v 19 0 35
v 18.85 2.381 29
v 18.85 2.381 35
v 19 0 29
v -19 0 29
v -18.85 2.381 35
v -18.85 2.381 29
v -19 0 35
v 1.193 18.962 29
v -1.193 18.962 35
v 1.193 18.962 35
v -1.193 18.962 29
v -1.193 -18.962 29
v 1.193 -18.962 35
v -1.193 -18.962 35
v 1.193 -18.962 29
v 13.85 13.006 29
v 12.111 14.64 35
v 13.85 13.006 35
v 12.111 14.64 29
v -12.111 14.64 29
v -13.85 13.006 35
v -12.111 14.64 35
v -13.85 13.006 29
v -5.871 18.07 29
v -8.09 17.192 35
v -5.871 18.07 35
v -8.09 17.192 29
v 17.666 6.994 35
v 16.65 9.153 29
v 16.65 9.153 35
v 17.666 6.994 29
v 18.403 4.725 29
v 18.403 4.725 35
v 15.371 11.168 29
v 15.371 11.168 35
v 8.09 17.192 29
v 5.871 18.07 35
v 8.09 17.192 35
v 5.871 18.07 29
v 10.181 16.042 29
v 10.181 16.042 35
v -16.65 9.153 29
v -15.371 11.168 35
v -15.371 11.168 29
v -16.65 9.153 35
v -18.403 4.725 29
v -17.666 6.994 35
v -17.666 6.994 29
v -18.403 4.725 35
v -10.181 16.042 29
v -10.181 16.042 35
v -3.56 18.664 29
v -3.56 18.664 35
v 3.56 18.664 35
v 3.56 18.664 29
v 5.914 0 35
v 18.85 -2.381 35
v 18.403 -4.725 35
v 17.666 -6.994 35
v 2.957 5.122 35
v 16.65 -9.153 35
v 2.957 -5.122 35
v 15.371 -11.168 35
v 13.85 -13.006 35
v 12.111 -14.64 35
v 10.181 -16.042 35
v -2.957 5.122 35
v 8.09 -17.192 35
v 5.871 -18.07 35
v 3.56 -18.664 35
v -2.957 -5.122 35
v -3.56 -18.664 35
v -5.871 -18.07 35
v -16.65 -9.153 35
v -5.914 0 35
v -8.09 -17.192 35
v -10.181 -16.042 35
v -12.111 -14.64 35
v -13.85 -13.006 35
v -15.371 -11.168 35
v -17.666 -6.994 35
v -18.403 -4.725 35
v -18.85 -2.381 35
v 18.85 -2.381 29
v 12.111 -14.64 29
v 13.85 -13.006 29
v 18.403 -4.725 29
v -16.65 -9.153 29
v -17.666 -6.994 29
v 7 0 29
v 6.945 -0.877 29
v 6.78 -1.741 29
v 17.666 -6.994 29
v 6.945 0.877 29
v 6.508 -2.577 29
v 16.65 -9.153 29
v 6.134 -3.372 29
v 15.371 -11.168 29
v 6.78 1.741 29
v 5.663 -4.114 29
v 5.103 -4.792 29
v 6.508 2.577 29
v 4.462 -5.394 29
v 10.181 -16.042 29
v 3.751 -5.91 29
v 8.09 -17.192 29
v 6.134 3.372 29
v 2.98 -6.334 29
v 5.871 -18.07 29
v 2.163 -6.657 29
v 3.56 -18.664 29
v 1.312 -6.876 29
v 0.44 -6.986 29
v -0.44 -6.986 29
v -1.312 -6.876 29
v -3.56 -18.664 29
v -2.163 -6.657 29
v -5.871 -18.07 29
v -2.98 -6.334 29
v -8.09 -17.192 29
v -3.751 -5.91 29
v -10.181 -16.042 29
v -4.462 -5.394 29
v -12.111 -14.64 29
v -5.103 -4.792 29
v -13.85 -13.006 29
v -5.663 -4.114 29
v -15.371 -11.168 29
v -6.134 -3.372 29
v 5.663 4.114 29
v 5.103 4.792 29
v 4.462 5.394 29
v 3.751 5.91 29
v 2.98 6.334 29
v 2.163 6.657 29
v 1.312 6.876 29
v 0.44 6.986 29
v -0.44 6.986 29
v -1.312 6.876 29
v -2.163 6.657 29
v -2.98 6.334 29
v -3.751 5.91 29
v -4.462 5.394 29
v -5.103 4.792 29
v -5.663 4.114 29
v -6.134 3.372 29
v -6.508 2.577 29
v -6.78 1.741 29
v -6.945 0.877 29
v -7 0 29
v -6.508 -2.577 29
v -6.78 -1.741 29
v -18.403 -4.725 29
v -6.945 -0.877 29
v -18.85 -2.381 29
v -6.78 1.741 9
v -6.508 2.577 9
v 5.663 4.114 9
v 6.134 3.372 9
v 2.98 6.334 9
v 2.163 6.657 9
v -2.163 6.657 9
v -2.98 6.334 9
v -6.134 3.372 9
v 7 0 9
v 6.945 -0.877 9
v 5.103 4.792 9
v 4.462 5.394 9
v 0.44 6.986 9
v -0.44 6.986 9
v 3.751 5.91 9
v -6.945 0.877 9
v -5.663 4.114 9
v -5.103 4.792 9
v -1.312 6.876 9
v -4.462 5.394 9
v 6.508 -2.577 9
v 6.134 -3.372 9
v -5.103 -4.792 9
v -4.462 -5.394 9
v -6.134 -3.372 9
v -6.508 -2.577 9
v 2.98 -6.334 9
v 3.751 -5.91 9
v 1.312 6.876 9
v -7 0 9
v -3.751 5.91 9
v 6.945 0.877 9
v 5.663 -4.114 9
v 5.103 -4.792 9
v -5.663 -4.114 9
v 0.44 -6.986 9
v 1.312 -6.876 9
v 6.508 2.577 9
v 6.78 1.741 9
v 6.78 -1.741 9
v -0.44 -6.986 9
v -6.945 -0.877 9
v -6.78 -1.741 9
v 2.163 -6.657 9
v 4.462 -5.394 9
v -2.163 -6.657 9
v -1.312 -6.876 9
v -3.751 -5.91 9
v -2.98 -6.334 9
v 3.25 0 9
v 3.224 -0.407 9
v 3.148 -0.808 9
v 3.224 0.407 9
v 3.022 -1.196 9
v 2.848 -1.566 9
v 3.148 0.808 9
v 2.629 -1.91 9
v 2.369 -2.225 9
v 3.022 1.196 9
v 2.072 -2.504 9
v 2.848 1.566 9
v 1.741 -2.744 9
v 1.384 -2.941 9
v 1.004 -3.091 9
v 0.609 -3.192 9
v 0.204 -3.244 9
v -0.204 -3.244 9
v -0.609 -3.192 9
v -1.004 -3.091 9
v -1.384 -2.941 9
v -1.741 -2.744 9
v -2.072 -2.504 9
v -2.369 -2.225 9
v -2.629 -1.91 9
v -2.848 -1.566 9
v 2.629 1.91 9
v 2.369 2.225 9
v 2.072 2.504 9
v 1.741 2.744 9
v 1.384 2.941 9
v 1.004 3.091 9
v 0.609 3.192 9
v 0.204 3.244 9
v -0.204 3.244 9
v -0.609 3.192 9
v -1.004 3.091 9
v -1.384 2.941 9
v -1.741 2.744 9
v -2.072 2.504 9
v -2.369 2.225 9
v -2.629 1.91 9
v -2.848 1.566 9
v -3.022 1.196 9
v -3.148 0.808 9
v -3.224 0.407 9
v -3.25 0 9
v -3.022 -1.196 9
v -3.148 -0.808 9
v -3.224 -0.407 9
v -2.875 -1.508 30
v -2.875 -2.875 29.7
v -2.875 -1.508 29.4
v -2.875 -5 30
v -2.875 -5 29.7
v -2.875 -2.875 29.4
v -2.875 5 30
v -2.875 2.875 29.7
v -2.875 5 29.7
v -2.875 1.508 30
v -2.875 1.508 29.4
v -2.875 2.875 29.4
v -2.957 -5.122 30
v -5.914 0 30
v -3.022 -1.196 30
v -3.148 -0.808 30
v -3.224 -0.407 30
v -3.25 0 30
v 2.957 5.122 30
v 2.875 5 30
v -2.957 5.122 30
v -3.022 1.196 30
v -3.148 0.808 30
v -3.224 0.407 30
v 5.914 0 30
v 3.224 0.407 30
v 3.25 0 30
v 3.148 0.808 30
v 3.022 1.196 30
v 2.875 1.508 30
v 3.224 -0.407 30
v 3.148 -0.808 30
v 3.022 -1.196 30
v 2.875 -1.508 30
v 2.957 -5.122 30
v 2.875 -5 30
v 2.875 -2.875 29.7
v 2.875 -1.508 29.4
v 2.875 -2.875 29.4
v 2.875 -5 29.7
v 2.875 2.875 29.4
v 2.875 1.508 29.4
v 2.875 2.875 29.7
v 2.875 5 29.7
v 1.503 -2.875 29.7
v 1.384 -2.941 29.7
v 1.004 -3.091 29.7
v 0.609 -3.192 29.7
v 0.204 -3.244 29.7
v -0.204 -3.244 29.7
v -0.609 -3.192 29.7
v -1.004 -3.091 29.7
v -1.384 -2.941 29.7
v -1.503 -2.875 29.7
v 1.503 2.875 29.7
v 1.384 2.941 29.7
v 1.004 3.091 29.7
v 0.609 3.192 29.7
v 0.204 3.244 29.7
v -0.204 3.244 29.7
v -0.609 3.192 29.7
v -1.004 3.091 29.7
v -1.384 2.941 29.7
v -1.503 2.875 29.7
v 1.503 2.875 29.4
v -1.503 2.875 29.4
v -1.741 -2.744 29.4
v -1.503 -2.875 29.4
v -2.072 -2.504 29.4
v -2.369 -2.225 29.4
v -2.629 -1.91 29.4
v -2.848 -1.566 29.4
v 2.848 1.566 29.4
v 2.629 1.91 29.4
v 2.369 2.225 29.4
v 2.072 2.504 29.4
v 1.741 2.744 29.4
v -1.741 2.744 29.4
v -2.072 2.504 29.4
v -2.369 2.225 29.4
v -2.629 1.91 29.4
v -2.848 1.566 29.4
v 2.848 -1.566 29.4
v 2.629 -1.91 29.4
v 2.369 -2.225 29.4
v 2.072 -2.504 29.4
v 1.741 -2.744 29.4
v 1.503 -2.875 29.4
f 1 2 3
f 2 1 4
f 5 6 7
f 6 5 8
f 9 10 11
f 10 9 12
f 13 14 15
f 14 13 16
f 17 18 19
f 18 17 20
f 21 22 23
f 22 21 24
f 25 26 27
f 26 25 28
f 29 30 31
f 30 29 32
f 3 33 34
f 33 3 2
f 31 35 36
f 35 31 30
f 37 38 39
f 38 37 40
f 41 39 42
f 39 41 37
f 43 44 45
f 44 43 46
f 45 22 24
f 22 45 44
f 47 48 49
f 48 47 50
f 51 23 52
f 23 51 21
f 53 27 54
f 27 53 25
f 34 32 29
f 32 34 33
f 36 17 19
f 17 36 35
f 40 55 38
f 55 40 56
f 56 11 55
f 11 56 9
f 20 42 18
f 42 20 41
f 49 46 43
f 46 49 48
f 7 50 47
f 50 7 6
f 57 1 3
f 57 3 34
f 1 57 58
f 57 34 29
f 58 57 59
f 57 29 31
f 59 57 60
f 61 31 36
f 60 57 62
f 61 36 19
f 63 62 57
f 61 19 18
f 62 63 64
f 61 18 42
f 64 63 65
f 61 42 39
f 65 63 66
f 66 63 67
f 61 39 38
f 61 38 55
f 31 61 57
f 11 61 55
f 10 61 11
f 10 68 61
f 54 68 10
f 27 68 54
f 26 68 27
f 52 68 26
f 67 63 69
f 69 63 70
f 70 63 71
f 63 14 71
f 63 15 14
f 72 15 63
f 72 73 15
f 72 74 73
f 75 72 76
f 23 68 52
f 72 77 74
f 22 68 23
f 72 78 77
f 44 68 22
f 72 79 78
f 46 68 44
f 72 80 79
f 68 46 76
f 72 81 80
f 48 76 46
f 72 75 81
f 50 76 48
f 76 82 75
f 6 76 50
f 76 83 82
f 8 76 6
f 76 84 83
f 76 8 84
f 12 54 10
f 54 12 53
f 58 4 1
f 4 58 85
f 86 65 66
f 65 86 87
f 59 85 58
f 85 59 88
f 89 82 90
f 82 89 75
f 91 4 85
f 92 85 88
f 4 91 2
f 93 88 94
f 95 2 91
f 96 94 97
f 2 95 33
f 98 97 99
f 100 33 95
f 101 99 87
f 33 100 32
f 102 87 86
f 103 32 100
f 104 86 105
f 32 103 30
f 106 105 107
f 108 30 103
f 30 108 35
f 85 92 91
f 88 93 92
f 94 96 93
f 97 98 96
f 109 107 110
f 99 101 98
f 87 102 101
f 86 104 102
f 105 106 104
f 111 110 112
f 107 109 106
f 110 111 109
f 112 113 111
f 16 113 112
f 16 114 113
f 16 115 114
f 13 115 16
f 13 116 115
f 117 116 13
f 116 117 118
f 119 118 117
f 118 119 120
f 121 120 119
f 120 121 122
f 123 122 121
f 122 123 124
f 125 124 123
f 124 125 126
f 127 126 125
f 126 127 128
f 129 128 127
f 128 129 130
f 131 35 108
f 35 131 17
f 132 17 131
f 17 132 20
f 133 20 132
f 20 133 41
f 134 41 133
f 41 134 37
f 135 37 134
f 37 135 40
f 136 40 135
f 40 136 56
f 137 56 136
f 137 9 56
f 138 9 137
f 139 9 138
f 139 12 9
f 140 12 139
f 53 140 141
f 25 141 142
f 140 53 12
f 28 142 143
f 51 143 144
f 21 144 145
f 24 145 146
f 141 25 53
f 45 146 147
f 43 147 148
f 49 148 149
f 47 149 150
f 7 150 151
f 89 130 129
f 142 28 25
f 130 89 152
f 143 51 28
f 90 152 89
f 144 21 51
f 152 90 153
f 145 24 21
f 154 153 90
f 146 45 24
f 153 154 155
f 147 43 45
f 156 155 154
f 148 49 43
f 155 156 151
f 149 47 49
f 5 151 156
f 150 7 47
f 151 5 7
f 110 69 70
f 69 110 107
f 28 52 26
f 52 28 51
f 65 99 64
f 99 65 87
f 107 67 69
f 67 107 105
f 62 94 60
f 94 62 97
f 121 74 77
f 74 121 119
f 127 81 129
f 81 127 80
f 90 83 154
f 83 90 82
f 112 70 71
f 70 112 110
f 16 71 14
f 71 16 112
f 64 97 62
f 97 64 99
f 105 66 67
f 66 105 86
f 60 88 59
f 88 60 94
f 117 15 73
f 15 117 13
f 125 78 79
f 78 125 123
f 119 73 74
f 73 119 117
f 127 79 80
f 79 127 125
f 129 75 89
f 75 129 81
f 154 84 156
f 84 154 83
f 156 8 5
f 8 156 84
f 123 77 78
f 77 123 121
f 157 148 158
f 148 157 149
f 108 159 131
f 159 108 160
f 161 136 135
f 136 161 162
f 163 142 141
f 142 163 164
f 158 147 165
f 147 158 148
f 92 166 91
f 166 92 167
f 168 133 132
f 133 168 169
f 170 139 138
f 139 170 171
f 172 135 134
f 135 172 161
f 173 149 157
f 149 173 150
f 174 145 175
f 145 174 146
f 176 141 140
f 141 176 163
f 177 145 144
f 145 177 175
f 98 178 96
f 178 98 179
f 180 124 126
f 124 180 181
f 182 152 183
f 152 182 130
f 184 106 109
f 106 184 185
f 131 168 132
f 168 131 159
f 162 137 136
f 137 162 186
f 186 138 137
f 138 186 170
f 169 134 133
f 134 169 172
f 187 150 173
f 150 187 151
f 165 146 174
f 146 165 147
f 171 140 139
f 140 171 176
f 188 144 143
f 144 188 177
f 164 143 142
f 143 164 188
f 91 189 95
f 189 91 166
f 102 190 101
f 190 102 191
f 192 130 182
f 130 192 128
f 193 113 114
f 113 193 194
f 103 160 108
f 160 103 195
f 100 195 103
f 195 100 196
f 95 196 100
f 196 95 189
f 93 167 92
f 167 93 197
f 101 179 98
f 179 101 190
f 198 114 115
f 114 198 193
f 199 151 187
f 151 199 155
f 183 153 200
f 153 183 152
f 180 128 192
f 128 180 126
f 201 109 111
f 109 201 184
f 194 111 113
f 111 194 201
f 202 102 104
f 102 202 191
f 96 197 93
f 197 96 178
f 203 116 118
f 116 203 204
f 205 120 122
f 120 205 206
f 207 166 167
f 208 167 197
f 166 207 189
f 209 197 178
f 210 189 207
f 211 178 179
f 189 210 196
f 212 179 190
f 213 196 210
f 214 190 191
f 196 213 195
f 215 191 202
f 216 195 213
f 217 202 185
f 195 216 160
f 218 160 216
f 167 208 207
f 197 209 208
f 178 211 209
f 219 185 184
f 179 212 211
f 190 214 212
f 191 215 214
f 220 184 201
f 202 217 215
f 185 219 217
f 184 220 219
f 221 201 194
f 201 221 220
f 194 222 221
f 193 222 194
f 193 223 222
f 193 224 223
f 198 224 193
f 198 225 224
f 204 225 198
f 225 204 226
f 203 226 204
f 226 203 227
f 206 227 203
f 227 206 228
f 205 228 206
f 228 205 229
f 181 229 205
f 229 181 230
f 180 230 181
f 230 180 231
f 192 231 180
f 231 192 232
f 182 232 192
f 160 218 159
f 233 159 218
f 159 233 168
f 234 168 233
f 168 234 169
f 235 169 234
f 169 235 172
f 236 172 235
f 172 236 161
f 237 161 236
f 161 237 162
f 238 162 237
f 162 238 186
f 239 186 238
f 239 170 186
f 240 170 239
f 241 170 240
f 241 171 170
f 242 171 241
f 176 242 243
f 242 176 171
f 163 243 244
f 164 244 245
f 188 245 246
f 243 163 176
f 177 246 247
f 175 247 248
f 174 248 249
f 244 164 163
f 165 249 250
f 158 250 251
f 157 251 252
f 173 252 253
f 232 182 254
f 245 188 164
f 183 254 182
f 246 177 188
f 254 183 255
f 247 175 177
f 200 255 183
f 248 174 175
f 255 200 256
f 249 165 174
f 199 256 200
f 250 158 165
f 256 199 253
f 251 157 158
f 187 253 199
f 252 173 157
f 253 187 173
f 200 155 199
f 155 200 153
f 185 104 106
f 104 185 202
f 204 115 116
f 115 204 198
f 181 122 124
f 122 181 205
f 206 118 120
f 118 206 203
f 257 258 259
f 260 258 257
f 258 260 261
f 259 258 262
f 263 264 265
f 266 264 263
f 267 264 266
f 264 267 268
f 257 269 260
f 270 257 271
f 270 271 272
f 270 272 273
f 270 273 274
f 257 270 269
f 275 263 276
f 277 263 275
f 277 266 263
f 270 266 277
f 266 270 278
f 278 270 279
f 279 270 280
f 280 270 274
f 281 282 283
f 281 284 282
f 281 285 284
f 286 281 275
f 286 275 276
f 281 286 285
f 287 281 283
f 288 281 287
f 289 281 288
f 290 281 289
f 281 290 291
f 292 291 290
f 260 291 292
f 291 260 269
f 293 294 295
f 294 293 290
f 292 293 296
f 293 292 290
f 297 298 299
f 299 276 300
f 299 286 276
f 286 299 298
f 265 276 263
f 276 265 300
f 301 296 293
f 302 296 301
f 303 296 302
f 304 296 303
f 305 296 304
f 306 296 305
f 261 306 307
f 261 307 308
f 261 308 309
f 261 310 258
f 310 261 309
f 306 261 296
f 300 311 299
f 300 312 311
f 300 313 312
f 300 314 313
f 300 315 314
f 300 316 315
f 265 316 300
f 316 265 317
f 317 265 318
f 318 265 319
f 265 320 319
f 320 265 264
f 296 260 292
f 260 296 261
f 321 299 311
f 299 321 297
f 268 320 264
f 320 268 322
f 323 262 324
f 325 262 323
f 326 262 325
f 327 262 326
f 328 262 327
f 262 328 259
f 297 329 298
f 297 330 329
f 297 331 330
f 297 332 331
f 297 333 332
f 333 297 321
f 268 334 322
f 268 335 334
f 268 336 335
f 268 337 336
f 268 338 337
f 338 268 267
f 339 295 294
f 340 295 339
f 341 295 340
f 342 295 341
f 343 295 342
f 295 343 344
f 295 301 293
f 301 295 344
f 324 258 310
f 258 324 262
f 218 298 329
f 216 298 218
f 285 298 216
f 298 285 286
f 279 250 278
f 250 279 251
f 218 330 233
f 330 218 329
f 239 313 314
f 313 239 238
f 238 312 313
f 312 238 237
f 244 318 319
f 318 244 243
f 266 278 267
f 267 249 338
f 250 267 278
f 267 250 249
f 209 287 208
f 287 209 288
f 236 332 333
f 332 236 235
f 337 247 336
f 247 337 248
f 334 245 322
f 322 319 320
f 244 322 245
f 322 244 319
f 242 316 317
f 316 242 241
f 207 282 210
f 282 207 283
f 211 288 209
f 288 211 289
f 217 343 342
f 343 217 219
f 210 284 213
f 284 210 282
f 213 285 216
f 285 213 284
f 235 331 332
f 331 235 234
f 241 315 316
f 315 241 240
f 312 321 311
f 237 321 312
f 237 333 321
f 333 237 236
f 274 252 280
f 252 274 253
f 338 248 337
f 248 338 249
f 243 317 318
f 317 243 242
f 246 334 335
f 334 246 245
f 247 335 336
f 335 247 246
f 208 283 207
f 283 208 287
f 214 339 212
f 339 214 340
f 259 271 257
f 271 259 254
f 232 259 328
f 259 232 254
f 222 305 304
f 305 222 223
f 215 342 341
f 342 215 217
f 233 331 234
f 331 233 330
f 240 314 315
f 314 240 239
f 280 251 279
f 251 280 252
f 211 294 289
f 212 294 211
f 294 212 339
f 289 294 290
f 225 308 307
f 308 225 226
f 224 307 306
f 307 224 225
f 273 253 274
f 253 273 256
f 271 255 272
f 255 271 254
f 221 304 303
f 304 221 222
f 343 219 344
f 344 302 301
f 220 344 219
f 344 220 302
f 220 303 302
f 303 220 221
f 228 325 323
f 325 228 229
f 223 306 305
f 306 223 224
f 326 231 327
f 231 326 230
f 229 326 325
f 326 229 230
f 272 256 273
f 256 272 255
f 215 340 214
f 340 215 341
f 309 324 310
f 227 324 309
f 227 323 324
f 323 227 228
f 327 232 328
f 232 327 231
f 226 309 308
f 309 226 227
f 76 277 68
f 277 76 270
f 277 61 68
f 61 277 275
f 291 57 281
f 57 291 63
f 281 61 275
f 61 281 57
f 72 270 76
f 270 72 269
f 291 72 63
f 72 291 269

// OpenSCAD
$fn = 50;


difference() {
	union() {
		translate(v = [0, 0, 29.0000000000]) {
			cylinder(h = 6, r = 19.0000000000);
		}
		translate(v = [0, 0, 9.0000000000]) {
			cylinder(h = 26, r = 7.0000000000);
		}
	}
	union() {
		translate(v = [0, 0, 35]) {
			rotate(a = [0, 0, 0]) {
				difference() {
					union() {
						#translate(v = [-2.8750000000, -5.0000000000, -5.3000000000]) {
							cube(size = [5.7500000000, 10, 0.3000000000]);
						}
						#translate(v = [-2.8750000000, -2.8750000000, -5.6000000000]) {
							cube(size = [5.7500000000, 5.7500000000, 0.3000000000]);
						}
						#translate(v = [-2.8750000000, -5.0000000000, 0]) {
							cube(size = [5.7500000000, 10, 0.3000000000]);
						}
						#translate(v = [-2.8750000000, -2.8750000000, 0.3000000000]) {
							cube(size = [5.7500000000, 5.7500000000, 0.3000000000]);
						}
						#translate(v = [0, 0, -100.0000000000]) {
							cylinder(h = 200, r = 3.2500000000);
						}
						translate(v = [0, 0, -5]) {
							#linear_extrude(height = 5) {
								polygon(points = [[5.9142500000, 0.0000000000], [2.9571250000, 5.1218907443], [-2.9571250000, 5.1218907443], [-5.9142500000, 0.0000000000], [-2.9571250000, -5.1218907443], [2.9571250000, -5.1218907443]]);
							}
						}
						#translate(v = [-2.8750000000, -5.0000000000, -5.3000000000]) {
							cube(size = [5.7500000000, 10, 0.3000000000]);
						}
						#translate(v = [-2.8750000000, -2.8750000000, -5.6000000000]) {
							cube(size = [5.7500000000, 5.7500000000, 0.3000000000]);
						}
						#translate(v = [-2.8750000000, -5.0000000000, 0]) {
							cube(size = [5.7500000000, 10, 0.3000000000]);
						}
						#translate(v = [-2.8750000000, -2.8750000000, 0.3000000000]) {
							cube(size = [5.7500000000, 5.7500000000, 0.3000000000]);
						}
						#translate(v = [0, 0, -100.0000000000]) {
							cylinder(h = 200, r = 3.2500000000);
						}
						#translate(v = [-2.8750000000, -5.0000000000, -5.3000000000]) {
							cube(size = [5.7500000000, 10, 0.3000000000]);
						}
						#translate(v = [-2.8750000000, -2.8750000000, -5.6000000000]) {
							cube(size = [5.7500000000, 5.7500000000, 0.3000000000]);
						}
						#translate(v = [-2.8750000000, -5.0000000000, 0]) {
							cube(size = [5.7500000000, 10, 0.3000000000]);
						}
						#translate(v = [-2.8750000000, -2.8750000000, 0.3000000000]) {
							cube(size = [5.7500000000, 5.7500000000, 0.3000000000]);
						}
						#translate(v = [0, 0, -100.0000000000]) {
							cylinder(h = 200, r = 3.2500000000);
						}
					}
					union();
				}
			}
		}
		#translate(v = [0, 0, -100.0000000000]) {
			cylinder(h = 200, r = 3.2500000000);
		}
	}
}
